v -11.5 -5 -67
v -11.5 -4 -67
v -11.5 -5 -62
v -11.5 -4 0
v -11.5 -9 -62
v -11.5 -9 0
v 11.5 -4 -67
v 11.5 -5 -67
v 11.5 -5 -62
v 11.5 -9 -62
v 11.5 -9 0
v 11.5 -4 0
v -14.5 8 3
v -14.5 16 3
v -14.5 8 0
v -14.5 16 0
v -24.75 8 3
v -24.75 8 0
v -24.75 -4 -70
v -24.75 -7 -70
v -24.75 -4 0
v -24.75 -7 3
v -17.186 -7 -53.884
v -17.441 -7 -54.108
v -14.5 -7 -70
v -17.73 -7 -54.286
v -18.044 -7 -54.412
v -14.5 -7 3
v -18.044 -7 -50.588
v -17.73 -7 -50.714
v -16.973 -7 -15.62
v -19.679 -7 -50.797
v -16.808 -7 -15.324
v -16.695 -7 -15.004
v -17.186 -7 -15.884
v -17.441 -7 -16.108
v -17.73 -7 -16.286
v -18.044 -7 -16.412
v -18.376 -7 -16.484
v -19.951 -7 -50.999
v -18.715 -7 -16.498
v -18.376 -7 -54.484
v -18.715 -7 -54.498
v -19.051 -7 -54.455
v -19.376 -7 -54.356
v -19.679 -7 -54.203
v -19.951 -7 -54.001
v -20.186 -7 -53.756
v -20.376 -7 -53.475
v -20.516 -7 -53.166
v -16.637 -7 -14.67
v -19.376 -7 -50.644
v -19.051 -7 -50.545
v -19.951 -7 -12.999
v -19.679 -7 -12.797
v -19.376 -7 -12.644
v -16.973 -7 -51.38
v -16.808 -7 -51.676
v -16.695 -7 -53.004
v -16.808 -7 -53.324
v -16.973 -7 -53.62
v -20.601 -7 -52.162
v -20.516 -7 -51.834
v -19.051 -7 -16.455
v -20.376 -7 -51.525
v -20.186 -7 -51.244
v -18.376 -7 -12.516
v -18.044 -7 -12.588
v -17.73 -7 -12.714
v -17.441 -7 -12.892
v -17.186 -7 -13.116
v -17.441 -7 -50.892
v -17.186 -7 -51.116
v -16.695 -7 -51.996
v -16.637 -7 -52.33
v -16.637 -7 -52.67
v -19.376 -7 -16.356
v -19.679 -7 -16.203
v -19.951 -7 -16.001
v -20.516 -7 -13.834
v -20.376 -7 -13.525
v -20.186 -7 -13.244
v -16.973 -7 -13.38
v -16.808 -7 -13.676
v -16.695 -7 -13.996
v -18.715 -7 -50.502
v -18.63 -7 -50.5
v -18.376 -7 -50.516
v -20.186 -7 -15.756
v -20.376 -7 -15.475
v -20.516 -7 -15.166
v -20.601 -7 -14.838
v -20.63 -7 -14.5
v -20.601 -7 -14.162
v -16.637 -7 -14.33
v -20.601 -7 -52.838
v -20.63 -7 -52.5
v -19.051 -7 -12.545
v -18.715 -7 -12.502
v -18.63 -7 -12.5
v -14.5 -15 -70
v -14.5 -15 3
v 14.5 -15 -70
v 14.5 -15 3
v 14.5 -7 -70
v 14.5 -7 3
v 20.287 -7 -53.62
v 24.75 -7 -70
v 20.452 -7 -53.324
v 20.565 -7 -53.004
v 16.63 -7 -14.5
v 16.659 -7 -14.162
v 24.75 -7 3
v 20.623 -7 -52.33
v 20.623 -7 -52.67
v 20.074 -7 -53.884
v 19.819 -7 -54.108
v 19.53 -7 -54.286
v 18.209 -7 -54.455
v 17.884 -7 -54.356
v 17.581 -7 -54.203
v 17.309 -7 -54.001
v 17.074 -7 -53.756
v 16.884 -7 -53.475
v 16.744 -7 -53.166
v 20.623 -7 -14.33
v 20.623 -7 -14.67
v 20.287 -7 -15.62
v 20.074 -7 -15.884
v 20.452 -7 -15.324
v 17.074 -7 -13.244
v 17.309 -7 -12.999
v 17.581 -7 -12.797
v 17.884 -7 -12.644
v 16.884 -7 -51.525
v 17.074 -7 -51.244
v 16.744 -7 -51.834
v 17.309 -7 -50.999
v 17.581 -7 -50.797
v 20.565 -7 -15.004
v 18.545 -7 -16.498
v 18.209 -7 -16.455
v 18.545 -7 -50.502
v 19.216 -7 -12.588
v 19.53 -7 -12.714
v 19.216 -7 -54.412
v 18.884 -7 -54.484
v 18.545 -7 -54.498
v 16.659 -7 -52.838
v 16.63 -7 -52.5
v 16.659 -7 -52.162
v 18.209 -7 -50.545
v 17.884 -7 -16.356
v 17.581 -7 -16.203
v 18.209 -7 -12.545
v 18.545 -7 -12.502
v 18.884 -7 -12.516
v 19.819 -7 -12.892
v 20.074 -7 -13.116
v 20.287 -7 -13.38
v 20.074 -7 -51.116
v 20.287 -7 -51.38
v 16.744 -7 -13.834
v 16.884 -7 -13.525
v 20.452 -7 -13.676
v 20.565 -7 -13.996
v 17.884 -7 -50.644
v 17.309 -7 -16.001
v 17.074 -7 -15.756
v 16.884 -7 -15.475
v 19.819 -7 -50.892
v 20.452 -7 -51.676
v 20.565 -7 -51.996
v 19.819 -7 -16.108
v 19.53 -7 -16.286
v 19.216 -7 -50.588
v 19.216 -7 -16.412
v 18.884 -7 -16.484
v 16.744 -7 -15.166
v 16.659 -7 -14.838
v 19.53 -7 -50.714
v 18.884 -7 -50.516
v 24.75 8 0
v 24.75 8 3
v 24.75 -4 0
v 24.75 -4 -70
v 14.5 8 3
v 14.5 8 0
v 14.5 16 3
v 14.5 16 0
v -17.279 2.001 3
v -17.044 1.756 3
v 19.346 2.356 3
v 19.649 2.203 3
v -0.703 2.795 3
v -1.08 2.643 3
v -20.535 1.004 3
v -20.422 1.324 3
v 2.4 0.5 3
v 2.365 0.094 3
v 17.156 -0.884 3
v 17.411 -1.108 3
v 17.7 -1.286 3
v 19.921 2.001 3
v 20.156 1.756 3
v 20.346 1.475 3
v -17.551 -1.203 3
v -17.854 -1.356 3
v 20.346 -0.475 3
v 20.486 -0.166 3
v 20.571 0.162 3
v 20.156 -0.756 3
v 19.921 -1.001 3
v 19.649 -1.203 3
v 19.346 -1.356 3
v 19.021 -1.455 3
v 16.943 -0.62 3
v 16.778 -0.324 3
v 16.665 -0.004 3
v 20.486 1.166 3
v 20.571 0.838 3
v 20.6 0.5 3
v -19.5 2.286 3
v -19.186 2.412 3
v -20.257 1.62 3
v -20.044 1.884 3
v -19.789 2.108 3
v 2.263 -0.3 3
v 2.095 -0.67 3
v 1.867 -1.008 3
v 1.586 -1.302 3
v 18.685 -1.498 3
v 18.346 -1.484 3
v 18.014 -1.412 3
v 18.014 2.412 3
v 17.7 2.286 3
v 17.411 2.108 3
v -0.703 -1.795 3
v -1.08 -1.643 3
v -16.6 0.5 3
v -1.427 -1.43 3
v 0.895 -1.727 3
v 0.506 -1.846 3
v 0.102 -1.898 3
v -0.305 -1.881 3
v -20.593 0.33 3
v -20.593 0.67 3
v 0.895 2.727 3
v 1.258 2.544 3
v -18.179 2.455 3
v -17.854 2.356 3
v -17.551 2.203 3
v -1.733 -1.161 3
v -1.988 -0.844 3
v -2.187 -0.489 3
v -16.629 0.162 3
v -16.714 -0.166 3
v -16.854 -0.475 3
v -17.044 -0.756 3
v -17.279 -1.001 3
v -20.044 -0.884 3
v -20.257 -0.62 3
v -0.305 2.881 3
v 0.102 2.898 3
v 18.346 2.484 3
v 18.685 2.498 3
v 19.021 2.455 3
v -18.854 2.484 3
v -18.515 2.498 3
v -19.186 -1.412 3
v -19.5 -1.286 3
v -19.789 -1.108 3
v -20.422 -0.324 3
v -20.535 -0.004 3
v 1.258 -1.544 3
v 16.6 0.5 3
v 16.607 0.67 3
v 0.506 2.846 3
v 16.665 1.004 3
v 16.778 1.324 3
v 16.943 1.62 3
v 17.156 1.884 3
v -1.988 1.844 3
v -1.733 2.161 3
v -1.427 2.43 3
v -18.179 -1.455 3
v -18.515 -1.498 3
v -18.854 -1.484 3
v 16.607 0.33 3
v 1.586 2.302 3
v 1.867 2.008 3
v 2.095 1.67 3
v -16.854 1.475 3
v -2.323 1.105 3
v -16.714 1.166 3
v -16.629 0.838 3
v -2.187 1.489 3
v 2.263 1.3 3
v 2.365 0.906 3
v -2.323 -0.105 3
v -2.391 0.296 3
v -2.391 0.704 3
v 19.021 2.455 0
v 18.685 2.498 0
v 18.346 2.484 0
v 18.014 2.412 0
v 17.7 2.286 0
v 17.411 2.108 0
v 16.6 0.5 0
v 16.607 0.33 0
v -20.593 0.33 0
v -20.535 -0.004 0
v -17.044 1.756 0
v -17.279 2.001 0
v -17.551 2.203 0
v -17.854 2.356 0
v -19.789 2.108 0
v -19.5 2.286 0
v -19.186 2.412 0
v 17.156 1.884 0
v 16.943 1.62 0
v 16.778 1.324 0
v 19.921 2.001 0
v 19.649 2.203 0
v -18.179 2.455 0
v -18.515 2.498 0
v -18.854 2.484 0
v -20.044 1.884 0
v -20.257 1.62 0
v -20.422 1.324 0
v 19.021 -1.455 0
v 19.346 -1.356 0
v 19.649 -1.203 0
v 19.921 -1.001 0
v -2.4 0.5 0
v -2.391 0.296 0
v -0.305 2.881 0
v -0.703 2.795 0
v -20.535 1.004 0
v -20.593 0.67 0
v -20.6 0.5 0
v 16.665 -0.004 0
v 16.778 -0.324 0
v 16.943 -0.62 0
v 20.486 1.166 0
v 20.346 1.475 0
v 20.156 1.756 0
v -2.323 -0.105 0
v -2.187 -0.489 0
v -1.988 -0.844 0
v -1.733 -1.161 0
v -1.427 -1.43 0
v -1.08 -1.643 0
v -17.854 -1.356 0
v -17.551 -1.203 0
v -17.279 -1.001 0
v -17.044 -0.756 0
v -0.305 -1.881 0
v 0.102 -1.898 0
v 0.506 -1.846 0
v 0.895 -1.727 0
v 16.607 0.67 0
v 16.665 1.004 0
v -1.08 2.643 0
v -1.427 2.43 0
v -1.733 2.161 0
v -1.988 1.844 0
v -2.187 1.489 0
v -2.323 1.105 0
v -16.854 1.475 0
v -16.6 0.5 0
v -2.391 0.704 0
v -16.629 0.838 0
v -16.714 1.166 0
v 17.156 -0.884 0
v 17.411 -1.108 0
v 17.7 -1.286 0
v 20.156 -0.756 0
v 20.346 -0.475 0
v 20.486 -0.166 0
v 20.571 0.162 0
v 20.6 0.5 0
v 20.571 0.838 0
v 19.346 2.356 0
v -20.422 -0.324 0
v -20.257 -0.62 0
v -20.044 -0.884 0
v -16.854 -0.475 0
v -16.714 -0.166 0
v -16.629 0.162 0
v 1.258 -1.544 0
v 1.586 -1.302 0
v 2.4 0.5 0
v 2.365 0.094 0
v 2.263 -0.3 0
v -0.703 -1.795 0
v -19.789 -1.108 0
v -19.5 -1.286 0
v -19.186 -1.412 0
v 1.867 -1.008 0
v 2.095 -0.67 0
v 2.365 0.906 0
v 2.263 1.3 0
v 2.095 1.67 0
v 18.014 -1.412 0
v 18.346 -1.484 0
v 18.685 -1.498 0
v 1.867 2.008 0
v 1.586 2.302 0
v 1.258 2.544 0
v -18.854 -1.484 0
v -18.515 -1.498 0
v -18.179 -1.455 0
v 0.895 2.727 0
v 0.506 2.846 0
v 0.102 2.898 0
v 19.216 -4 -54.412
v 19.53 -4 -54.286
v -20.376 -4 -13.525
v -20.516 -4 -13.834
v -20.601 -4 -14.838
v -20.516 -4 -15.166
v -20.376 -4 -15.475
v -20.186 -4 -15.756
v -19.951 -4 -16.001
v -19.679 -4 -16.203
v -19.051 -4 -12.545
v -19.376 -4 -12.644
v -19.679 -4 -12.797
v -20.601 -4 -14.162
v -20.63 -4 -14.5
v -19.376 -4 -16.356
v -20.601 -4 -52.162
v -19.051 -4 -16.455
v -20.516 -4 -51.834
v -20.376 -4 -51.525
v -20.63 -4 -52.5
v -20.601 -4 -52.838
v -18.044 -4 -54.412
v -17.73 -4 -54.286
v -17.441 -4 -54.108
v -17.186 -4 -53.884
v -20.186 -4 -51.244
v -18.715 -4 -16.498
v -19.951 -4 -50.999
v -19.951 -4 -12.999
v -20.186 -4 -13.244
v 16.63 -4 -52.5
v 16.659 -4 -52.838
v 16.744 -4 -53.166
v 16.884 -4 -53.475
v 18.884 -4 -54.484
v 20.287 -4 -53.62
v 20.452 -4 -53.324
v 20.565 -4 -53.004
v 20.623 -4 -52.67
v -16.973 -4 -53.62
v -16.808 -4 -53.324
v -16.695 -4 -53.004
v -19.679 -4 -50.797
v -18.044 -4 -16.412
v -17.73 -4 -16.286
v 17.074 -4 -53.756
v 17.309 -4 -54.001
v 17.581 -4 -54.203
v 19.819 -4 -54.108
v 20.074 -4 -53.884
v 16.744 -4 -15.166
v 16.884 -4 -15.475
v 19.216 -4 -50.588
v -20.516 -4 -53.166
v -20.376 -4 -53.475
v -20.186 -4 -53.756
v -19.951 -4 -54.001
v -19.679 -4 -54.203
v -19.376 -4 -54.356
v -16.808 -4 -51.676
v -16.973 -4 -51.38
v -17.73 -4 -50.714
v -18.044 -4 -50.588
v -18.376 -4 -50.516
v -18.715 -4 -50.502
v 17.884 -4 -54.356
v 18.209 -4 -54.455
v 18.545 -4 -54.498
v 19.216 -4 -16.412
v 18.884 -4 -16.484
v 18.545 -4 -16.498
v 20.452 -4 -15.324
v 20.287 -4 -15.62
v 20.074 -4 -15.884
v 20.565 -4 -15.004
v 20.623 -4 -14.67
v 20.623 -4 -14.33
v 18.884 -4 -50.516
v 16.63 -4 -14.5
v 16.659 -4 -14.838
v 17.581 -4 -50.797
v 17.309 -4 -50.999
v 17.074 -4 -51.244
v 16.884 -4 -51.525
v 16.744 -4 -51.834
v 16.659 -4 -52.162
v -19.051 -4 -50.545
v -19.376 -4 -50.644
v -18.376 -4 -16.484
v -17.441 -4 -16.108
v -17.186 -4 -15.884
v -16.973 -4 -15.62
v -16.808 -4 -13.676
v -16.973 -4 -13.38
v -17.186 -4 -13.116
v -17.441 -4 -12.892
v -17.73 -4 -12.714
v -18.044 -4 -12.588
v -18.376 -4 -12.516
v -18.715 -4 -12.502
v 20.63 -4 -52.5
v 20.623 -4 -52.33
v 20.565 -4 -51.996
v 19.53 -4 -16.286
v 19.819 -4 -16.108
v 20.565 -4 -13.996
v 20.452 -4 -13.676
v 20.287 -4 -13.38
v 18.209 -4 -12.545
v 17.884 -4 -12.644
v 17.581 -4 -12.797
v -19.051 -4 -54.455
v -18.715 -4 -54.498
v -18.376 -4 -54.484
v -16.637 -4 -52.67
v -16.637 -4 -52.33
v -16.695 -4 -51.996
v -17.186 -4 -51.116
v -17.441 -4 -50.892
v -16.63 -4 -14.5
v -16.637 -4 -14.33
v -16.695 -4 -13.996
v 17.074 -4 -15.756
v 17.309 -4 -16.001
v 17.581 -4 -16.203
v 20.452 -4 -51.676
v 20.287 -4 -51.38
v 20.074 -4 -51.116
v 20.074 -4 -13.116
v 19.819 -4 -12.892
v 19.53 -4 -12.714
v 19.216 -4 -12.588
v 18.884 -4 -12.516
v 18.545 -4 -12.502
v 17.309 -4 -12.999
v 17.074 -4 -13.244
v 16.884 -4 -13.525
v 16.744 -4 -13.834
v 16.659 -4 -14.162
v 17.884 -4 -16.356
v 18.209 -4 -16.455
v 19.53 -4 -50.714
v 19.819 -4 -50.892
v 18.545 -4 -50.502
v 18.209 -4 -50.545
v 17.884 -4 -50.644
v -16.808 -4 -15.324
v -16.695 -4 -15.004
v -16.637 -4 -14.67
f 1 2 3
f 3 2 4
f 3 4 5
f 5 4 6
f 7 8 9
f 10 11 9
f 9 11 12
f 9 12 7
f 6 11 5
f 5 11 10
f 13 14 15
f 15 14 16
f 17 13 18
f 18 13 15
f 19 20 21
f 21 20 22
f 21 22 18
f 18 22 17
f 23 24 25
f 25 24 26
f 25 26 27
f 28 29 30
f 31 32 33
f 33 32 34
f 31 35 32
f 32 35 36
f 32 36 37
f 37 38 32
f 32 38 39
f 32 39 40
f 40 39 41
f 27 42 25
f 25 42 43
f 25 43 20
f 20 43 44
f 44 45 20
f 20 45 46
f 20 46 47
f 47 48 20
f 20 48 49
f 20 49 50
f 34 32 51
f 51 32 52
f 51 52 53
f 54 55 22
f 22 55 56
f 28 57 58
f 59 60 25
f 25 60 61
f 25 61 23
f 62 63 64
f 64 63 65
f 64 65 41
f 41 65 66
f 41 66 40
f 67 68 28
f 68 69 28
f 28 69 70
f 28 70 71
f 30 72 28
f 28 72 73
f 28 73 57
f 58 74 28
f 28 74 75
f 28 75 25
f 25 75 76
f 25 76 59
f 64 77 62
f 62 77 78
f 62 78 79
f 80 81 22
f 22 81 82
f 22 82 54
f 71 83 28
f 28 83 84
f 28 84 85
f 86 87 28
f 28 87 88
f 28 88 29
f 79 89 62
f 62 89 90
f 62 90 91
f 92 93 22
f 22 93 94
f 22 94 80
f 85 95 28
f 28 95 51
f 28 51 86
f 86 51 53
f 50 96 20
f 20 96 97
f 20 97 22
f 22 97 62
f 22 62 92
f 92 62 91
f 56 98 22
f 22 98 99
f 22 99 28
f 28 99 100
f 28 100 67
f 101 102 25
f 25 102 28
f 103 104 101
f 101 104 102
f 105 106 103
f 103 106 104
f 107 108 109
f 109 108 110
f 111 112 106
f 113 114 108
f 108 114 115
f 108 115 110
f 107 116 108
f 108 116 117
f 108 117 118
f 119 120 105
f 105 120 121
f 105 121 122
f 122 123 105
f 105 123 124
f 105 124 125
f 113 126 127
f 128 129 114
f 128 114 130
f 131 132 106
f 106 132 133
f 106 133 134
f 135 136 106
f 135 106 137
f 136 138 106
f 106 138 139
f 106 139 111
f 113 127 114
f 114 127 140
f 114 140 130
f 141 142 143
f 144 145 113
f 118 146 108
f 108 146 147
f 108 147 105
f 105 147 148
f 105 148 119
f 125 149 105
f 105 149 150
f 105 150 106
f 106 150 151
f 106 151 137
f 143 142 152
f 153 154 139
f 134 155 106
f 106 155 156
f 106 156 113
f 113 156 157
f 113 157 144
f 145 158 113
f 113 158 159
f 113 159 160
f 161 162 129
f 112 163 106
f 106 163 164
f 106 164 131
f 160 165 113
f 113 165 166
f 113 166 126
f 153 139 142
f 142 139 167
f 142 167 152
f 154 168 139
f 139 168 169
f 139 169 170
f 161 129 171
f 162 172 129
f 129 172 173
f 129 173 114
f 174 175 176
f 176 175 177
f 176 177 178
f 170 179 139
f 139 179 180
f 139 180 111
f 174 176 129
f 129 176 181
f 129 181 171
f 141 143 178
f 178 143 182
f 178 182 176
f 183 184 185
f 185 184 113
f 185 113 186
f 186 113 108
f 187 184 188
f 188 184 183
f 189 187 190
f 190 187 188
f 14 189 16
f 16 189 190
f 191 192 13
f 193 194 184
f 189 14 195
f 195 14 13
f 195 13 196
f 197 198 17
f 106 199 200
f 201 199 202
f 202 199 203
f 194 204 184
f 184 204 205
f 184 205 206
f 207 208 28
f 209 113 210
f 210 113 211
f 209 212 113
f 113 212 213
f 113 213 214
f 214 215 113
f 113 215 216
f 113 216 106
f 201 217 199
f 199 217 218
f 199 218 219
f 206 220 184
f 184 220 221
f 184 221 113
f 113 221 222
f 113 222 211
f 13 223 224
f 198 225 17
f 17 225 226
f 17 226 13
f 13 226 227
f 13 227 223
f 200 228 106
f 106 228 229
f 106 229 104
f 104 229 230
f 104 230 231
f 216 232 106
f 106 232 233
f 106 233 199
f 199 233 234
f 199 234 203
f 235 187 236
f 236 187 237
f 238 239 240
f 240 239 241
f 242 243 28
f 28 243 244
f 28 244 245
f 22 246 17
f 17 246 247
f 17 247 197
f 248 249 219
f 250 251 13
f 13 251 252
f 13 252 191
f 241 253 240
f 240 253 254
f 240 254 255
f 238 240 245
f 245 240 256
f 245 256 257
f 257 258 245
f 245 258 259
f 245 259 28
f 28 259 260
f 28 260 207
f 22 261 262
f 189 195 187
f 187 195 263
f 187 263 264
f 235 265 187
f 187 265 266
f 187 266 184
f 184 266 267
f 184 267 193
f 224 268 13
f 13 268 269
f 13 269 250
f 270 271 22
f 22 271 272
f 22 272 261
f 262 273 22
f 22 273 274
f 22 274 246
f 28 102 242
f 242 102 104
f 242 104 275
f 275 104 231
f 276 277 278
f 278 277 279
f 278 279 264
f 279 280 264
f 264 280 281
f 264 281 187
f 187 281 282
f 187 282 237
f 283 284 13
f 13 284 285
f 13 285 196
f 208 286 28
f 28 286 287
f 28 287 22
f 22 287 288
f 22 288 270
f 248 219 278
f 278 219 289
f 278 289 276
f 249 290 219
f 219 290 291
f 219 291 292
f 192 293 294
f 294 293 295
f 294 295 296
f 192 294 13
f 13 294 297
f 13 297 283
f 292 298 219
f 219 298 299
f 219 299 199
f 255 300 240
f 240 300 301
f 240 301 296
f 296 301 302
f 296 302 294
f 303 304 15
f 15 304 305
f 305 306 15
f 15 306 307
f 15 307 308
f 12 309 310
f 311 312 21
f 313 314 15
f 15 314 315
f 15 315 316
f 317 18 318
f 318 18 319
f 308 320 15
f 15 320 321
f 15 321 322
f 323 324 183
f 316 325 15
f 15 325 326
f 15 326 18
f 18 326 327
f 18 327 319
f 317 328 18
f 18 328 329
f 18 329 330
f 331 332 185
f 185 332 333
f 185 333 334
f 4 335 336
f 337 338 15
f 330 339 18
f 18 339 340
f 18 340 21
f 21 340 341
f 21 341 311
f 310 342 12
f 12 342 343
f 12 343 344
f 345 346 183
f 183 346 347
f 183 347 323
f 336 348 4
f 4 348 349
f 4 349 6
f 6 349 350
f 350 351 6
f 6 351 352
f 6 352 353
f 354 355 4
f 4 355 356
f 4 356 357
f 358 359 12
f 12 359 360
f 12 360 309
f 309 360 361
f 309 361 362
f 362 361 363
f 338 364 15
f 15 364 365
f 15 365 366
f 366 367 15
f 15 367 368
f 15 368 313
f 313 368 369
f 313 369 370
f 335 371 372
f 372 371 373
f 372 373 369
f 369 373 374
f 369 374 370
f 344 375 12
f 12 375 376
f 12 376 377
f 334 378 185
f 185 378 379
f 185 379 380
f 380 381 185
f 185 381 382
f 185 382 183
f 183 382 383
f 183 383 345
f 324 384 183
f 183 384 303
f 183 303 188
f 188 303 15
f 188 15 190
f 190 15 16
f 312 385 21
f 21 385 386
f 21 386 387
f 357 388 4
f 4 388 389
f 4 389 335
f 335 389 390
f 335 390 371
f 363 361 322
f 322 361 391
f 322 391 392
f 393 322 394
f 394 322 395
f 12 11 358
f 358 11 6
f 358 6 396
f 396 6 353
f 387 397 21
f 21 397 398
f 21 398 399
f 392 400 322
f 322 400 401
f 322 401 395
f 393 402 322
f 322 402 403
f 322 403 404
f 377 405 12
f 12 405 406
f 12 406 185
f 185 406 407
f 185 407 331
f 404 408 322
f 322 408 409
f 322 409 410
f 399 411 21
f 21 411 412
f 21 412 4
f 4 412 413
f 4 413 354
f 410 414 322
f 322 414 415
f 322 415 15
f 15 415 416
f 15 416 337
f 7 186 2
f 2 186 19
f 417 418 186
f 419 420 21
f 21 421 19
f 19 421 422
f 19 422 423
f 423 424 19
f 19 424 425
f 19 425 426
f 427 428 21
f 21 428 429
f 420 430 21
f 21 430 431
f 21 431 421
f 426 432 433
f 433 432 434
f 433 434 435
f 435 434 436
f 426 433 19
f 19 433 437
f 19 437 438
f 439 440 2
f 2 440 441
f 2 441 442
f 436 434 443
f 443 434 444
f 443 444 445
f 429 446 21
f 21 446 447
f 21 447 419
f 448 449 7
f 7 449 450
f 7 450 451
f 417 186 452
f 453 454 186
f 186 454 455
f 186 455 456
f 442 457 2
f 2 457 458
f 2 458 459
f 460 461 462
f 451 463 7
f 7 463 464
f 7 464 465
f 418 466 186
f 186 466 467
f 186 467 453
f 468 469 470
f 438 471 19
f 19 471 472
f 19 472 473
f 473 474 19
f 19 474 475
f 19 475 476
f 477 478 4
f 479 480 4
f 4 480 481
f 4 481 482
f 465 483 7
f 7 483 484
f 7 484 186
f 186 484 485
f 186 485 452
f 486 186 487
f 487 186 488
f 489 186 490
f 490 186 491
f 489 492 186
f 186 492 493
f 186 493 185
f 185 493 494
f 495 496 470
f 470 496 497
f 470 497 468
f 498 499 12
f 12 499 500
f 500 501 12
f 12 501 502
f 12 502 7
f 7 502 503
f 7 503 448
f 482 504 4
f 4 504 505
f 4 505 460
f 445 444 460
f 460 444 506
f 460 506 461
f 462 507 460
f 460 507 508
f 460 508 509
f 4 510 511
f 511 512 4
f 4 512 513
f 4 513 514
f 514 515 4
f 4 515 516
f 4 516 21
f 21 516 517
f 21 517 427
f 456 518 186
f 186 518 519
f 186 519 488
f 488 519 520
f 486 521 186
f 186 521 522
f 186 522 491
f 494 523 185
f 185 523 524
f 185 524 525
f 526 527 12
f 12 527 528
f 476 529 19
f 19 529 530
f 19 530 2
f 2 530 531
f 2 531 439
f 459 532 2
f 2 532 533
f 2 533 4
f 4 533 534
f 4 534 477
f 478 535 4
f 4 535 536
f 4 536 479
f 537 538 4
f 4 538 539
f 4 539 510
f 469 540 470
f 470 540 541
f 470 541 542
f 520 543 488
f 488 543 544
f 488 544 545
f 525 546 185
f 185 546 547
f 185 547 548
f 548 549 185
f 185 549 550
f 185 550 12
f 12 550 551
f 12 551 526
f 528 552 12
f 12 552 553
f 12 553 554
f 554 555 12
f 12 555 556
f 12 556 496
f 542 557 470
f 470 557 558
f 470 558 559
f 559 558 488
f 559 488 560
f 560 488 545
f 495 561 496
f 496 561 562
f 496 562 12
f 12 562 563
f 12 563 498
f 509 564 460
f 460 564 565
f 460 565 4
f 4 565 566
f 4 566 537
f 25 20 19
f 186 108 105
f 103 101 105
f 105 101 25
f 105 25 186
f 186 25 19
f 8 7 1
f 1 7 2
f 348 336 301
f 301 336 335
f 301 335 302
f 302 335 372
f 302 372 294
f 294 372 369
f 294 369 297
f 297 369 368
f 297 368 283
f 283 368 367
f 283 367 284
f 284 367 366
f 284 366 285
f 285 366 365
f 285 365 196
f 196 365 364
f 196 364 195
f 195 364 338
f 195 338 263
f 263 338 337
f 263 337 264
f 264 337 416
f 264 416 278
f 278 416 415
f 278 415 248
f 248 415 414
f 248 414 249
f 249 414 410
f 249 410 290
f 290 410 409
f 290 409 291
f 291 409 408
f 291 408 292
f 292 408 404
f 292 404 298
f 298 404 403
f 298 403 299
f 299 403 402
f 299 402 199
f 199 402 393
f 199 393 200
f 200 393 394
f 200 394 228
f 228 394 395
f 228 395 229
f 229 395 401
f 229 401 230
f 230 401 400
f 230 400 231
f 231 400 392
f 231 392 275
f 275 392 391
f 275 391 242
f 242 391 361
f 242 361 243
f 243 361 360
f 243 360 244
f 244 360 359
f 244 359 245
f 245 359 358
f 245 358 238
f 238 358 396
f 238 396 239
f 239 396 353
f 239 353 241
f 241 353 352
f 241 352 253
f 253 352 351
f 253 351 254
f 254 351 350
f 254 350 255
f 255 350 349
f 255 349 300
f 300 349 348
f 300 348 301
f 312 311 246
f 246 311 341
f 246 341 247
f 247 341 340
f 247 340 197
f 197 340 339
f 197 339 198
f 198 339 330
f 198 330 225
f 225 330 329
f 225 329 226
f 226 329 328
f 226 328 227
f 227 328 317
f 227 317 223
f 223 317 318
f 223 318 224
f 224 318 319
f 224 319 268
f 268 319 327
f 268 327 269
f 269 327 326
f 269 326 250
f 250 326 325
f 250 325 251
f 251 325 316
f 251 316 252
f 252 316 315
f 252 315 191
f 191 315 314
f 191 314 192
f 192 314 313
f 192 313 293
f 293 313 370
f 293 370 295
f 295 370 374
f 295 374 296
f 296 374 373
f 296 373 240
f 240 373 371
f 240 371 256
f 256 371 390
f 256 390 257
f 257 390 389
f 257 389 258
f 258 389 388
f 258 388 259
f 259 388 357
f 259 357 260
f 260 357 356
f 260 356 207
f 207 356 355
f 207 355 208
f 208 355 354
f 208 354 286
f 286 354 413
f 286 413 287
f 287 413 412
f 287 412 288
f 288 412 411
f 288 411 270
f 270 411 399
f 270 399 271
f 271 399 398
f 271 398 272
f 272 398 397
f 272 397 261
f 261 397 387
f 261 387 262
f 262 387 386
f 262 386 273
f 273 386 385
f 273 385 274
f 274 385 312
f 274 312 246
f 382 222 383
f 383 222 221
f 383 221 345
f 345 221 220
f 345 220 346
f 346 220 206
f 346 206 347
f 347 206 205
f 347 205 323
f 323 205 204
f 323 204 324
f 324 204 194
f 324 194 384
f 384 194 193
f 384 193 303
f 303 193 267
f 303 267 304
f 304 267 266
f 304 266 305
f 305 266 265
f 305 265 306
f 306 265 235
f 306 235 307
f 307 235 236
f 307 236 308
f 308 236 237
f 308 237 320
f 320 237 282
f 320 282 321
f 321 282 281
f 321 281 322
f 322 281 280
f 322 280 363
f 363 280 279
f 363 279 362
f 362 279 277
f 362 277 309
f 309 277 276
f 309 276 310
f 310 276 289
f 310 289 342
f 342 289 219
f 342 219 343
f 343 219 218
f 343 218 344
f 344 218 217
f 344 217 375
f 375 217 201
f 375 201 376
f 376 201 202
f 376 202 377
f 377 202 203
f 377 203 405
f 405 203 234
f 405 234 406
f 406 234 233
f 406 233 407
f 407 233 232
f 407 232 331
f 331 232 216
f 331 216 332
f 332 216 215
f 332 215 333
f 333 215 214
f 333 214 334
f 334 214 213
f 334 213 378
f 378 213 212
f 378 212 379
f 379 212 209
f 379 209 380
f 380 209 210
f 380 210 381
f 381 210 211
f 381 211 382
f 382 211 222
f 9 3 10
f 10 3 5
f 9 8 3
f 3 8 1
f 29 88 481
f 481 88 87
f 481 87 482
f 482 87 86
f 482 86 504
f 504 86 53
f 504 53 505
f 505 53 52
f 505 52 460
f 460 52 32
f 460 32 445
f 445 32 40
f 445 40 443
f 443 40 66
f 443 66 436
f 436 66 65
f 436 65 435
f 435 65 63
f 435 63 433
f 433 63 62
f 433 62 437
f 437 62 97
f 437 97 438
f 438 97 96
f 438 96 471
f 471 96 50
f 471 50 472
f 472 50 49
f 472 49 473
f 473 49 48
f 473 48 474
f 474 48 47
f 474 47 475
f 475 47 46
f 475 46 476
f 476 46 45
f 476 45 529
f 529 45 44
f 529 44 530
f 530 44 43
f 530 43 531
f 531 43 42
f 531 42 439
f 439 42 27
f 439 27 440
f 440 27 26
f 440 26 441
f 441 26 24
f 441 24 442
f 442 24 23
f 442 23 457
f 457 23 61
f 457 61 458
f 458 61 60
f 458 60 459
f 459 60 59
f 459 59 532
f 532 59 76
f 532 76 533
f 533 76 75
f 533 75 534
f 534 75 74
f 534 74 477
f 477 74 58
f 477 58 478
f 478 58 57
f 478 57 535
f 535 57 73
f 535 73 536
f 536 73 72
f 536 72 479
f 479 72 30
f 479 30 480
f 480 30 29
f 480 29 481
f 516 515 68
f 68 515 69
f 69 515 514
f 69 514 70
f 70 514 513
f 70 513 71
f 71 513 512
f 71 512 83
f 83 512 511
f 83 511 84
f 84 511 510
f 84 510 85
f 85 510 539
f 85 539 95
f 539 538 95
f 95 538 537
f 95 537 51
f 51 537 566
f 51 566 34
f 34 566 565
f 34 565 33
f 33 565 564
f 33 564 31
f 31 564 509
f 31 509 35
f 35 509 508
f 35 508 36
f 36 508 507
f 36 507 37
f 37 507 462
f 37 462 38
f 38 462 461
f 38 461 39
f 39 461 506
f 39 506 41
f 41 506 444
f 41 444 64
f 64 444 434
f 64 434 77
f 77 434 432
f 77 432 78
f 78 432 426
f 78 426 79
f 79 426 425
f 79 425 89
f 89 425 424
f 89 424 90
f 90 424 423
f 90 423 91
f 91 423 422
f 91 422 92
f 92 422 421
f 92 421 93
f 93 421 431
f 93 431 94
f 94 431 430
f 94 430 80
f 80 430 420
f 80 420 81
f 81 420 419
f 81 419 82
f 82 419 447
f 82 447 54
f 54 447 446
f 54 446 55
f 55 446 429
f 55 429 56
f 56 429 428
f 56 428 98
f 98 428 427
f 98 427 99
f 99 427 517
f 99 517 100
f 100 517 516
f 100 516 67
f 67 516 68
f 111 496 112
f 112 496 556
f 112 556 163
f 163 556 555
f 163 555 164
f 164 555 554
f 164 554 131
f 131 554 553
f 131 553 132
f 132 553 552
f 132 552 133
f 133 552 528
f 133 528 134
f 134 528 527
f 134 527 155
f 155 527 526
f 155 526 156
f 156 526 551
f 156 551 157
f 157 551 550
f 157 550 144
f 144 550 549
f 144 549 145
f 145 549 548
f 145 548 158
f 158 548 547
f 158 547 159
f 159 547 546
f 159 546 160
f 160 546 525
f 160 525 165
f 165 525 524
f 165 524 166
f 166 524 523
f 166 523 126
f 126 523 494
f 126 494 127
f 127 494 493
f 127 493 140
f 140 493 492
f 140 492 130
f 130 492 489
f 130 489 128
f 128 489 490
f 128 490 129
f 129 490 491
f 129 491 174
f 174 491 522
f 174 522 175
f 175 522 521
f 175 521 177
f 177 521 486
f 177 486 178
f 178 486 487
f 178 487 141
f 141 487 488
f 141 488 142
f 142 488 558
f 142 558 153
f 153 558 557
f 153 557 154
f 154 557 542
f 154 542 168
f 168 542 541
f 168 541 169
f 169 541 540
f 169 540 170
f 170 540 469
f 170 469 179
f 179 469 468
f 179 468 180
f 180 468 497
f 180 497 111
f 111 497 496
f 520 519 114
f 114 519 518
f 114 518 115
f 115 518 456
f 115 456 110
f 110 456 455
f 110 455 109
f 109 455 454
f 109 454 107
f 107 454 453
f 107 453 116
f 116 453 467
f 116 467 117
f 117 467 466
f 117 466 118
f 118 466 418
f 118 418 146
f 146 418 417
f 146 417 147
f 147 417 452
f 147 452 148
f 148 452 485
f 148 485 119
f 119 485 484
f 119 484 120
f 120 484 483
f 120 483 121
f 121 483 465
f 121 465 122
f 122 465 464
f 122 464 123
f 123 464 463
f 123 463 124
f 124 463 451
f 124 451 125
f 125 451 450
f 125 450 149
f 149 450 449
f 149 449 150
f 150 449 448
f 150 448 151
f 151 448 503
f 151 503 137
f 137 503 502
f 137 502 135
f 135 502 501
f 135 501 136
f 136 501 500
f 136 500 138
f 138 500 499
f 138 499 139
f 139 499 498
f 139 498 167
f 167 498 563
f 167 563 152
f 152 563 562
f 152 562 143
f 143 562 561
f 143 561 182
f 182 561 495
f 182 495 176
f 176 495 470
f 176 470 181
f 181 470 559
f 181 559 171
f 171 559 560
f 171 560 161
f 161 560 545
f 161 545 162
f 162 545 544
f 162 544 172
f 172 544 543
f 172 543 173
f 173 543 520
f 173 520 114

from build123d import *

# Parameters (mm, degrees)
SALIENTE_EXTRUIR2_DEPTH = 3
SALIENTE_EXTRUIR3_DEPTH = 70
CROQUIS_HUECO_MOTOR_W   = 23
CROQUIS_HUECO_MOTOR_H   = 67
HUECO_MOTOR_DEPTH       = 5
CROQUIS10_R             = 2.4
CROQUIS10_R_2           = 2
TORNILLO_Y_MOTOR_DEPTH  = 5
CROQUIS12_W             = 23
CROQUIS12_H             = 5
SALIENTE_EXTRUIR5_DEPTH = 4
CROQUIS16_R             = 2
CORTAR_EXTRUIR4_DEPTH   = 77.893188905


with BuildPart() as part:
    # Croquis4 → Saliente-Extruir2 (new body)
    with BuildSketch(Plane.XY):
        Polygon((14.5, 16), (-14.5, 16), (-14.5, 8), (-24.75, 8), (-24.75, -7), (-14.5, -7), (-14.5, -15), (14.5, -15), (14.5, -7), (24.75, -7), (24.75, 8), (14.5, 8), align=None)
    extrude(amount=SALIENTE_EXTRUIR2_DEPTH)

    # Croquis5 → Saliente-Extruir3 (add)
    with BuildSketch(Plane(origin=(0, 0, 0), x_dir=(-1, 0, 0), z_dir=(0, 0, -1))):
        Polygon((-24.75, -4), (-24.75, -7), (-14.5, -7), (-14.5, -15), (14.5, -15), (14.5, -7), (24.75, -7), (24.75, -4), align=None)
    extrude(amount=SALIENTE_EXTRUIR3_DEPTH)

    # croquis hueco motor → hueco motor (cut)
    with BuildSketch(Plane(origin=(0, -4, 0), x_dir=(1, 0, 0), z_dir=(0, 1, 0))):
        with Locations((0, 33.5)):
            Rectangle(CROQUIS_HUECO_MOTOR_W, CROQUIS_HUECO_MOTOR_H)
    extrude(amount=-HUECO_MOTOR_DEPTH, mode=Mode.SUBTRACT)

    # Croquis10 → tornillo y motor (cut)
    with BuildSketch(Plane.XY.offset(3)):
        with Locations((0, 0.5)):
            Circle(CROQUIS10_R)
        with Locations((-18.6, 0.5)):
            Circle(CROQUIS10_R_2)
        with Locations(Location((18.6, 0.5, 0), (0, 0, 180))):
            Circle(CROQUIS10_R_2)
    extrude(amount=-TORNILLO_Y_MOTOR_DEPTH, mode=Mode.SUBTRACT)

    # Croquis12 → Saliente-Extruir5 (add)
    with BuildSketch(Plane(origin=(0, -9, 0), x_dir=(1, 0, 0), z_dir=(0, 1, 0))):
        with Locations((0, 64.5)):
            Rectangle(CROQUIS12_W, CROQUIS12_H)
    extrude(amount=SALIENTE_EXTRUIR5_DEPTH)

    # Croquis16 → Cortar-Extruir4 (cut, through all)
    with BuildSketch(Plane(origin=(0, -4, 0), x_dir=(1, 0, 0), z_dir=(0, 1, 0))):
        with Locations(Location((-18.63, 52.5, 0), (0, 0, 180))):
            Circle(CROQUIS16_R)
        with Locations(Location((-18.63, 14.5, 0), (0, 0, 270))):
            Circle(CROQUIS16_R)
        with Locations(Location((18.63, 14.5, 0), (0, 0, 180))):
            Circle(CROQUIS16_R)
        with Locations(Location((18.63, 52.5, 0), (0, 0, 180))):
            Circle(CROQUIS16_R)
    extrude(amount=-CORTAR_EXTRUIR4_DEPTH, mode=Mode.SUBTRACT)


solid = part.part
